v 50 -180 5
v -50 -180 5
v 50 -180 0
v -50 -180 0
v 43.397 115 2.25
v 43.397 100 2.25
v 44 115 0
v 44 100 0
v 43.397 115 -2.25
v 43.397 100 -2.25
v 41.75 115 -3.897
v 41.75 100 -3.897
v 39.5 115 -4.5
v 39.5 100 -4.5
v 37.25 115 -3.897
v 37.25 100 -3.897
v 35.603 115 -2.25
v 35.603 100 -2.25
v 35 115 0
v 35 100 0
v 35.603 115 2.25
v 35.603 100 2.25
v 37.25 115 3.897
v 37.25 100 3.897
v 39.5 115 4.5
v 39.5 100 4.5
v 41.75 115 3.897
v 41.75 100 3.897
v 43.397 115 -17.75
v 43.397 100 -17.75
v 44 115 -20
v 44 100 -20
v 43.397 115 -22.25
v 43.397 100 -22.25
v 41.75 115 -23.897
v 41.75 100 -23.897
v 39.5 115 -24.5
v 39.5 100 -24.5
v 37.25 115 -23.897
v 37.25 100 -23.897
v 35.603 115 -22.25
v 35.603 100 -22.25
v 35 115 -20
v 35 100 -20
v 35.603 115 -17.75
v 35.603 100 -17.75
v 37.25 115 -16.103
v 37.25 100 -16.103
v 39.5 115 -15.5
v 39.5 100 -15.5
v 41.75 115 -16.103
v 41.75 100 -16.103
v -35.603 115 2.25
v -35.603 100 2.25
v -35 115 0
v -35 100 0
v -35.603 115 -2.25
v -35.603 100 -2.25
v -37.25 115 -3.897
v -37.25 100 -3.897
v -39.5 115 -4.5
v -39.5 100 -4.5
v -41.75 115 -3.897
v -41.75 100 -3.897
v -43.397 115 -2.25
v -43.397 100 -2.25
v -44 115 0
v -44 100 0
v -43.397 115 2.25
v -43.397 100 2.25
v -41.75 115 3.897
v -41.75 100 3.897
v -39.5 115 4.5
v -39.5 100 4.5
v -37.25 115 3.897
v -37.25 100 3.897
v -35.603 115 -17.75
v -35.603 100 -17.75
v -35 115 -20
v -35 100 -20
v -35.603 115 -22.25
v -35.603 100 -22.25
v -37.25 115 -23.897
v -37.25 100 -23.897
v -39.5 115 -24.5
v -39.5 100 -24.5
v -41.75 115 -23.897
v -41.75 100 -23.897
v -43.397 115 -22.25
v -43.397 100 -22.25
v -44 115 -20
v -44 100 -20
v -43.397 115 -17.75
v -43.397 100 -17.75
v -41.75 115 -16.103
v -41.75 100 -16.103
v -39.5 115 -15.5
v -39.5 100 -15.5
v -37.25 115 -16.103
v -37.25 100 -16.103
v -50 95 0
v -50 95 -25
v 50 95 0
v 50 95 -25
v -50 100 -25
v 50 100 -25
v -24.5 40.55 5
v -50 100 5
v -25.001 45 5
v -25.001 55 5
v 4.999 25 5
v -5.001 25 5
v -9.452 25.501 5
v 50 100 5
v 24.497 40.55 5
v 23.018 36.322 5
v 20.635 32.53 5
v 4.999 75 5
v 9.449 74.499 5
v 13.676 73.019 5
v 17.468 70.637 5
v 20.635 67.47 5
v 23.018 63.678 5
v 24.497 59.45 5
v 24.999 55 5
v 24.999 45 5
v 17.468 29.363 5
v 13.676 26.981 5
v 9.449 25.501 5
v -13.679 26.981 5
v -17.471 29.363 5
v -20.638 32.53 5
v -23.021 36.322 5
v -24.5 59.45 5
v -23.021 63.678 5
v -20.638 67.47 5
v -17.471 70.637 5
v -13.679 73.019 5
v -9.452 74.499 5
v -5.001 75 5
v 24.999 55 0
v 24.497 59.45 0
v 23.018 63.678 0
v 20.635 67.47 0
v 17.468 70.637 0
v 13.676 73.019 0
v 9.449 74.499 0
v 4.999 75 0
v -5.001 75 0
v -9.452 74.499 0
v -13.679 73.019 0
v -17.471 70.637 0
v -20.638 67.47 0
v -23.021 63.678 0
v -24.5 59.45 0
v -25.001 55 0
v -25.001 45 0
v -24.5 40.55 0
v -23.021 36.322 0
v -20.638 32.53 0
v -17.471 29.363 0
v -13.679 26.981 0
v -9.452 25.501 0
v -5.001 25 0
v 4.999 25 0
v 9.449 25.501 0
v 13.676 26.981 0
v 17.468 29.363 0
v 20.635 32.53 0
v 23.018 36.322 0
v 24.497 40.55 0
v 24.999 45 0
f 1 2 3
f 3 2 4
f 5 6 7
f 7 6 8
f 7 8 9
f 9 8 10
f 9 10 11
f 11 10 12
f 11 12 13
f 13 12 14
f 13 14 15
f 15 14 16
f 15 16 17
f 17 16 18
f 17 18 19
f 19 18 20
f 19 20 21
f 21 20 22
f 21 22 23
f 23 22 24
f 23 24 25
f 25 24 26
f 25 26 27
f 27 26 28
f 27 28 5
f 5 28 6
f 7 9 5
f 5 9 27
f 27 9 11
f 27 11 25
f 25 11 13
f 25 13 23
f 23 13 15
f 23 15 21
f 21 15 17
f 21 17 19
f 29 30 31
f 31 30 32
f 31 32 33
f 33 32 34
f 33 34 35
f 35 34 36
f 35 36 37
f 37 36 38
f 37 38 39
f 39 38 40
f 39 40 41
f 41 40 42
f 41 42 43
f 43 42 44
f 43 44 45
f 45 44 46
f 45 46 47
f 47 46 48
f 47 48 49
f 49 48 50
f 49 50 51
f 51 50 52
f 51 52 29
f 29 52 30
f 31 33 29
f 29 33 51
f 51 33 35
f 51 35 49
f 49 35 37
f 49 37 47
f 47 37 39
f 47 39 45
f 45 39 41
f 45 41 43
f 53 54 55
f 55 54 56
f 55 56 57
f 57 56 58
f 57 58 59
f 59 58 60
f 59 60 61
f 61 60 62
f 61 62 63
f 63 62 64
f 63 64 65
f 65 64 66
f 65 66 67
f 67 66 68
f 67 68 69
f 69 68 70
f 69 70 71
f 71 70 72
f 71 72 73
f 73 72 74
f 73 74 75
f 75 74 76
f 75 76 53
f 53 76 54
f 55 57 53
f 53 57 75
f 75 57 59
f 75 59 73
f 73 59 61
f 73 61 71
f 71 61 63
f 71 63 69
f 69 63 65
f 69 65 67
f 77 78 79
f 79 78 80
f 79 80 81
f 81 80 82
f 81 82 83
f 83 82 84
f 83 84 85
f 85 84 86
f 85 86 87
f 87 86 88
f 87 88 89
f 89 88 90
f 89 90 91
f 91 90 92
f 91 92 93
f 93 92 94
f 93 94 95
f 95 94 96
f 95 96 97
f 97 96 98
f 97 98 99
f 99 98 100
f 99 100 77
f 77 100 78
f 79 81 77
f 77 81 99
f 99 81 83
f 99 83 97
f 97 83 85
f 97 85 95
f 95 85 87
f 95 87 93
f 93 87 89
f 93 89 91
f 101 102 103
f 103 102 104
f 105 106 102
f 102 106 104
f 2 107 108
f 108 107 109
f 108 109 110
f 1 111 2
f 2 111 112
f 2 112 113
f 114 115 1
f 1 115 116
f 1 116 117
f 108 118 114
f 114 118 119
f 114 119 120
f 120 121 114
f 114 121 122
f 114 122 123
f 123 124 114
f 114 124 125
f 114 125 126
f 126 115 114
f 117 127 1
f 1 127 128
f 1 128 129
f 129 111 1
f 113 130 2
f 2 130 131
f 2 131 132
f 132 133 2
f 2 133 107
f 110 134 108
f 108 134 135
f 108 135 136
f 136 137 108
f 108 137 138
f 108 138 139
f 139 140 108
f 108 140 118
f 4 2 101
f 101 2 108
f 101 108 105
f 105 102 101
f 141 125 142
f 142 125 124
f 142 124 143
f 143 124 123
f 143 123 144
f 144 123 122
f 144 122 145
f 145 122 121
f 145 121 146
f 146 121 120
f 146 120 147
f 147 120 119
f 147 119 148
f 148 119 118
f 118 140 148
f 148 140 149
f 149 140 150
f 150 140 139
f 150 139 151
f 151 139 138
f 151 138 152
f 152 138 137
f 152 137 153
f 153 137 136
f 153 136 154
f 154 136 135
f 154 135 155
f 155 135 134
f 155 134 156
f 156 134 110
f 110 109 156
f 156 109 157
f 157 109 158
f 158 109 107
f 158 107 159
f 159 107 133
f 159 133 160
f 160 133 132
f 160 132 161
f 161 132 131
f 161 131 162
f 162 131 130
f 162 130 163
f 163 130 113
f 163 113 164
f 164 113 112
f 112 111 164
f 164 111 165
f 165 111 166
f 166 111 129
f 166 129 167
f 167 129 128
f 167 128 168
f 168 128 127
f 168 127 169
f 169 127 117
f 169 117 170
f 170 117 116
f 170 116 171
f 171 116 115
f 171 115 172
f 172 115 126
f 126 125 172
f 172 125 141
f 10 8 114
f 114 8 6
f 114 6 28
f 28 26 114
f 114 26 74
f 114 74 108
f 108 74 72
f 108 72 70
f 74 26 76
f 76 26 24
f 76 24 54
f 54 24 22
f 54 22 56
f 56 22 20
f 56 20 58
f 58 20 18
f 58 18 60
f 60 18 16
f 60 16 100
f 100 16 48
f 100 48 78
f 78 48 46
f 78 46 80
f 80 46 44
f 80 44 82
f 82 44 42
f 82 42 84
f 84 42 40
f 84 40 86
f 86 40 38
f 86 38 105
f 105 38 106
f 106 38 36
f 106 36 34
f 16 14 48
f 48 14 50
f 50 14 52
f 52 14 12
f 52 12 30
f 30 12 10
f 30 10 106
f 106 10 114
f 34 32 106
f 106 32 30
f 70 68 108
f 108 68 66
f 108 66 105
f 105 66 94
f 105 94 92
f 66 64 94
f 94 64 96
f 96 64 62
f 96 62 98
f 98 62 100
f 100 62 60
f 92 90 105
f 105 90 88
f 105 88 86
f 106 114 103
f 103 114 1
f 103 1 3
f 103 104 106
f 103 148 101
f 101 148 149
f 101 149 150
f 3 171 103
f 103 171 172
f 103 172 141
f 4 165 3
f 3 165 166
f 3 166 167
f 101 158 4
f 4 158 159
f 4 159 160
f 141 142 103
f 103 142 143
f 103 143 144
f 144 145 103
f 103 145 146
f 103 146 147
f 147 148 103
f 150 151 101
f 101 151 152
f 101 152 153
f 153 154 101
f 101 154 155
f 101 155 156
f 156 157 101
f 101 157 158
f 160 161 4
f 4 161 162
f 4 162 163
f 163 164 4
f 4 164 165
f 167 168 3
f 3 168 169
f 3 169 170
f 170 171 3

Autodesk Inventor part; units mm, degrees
ref_plane "YZ Plane" through (0, 0, 0) normal (1, 0, 0) x (0, 1, 0)
ref_plane "XZ Plane" through (0, 0, 0) normal (0, 1, 0) x (-1, 0, 0)
ref_plane "XY Plane" through (0, 0, 0) normal (0, 0, 1) x (1, 0, 0)
sketch "Sketch1" plane through (0, 0, 0) normal (0, 0, 1) x (1, 0, 0)
  line L0 (-50, -100) -> (50, -100)
  line L1 (50, -100) -> (50, 100)
  line L2 (50, 100) -> (-50, 100)
  line L3 (-50, 100) -> (-50, -100)
  line L4 (-50, -100) -> (50, 100) construction
  line L5 (50, -100) -> (-50, 100) construction
  point P0 (0, 0)
  dimension "d0" = 100
  dimension "d1" = 200
extrude "Extrusion1" add sketch "Sketch1" along normal blind 5
sketch "Sketch6" plane through (0, 0, 5) normal (0, 0, 1) x (1, 0, 0)
  line L0 (4.9986, 75) -> (-5.0014, 75)
  line L1 (-25.0014, 55) -> (-25.0014, 45)
  line L2 (-5.0014, 25) -> (4.9986, 25)
  line L3 (24.9986, 45) -> (24.9986, 55)
  line L4 (24.9986, 75) -> (-25.0014, 25) construction
  line L5 (-25.0014, 75) -> (24.9986, 25) construction
  arc A0 (4.9986, 25) -> (24.9986, 45) centre (4.9986, 45) ccw
  arc A1 (24.9986, 55) -> (4.9986, 75) centre (4.9986, 55) ccw
  arc A2 (-5.0014, 75) -> (-25.0014, 55) centre (-5.0014, 55) ccw
  arc A3 (-25.0014, 45) -> (-5.0014, 25) centre (-5.0014, 45) ccw
  point P0 (0, 0)
  point P1 (-0.0014, 50)
  dimension "d21" = 50
  dimension "d22" = 50
  dimension "d23" = 20
extrude "Extrusion6" cut sketch "Sketch6" against normal blind 5
sketch "Sketch15" plane through (-50, 100, 5) normal (0, 1, 0) x (1, 0, 0)
  line L0 (100, 0) -> (0, 0) projected
  line L1 (0, 0) -> (100, 0)
  line L2 (100, 0) -> (100, 30)
  line L3 (100, 30) -> (0, 30)
  line L4 (0, 30) -> (0, 0)
  point P0 (50, 5)
  dimension "d46" = 100
  dimension "d47" = 30
sketch "Sketch16" plane through (-50, 100, 5) normal (0, 1, 0) x (1, 0, 0)
  circle A0 centre (10.5, 5) radius 4.5
  circle A1 centre (89.5, 5) radius 4.5
  circle A2 centre (10.5, 25) radius 4.5
  circle A3 centre (89.5, 25) radius 4.5
  point P0 (50, 5)
  dimension "d48" = 9
  dimension "d49" = 9
  dimension "d50" = 9
  dimension "d51" = 9
extrude "Extrusion11" add sketch "Sketch15" against normal blind 5
extrude "Extrusion12" add sketch "Sketch16" along normal blind 15
sketch "Sketch21" plane through (0, 0, 5) normal (0, 0, 1) x (1, 0, 0)
  line L0 (50, -100) -> (50, 100) projected
  line L1 (50, -100) -> (-50, -100)
  line L2 (-50, -100) -> (-50, -180)
  line L3 (-50, -180) -> (50, -180)
  line L4 (50, -180) -> (50, -100)
  point P0 (0, 0)
  dimension "d66" = 100
  dimension "d67" = 80
extrude "Extrusion17" add sketch "Sketch21" against normal blind 5
properties part number "fixation_v04"
